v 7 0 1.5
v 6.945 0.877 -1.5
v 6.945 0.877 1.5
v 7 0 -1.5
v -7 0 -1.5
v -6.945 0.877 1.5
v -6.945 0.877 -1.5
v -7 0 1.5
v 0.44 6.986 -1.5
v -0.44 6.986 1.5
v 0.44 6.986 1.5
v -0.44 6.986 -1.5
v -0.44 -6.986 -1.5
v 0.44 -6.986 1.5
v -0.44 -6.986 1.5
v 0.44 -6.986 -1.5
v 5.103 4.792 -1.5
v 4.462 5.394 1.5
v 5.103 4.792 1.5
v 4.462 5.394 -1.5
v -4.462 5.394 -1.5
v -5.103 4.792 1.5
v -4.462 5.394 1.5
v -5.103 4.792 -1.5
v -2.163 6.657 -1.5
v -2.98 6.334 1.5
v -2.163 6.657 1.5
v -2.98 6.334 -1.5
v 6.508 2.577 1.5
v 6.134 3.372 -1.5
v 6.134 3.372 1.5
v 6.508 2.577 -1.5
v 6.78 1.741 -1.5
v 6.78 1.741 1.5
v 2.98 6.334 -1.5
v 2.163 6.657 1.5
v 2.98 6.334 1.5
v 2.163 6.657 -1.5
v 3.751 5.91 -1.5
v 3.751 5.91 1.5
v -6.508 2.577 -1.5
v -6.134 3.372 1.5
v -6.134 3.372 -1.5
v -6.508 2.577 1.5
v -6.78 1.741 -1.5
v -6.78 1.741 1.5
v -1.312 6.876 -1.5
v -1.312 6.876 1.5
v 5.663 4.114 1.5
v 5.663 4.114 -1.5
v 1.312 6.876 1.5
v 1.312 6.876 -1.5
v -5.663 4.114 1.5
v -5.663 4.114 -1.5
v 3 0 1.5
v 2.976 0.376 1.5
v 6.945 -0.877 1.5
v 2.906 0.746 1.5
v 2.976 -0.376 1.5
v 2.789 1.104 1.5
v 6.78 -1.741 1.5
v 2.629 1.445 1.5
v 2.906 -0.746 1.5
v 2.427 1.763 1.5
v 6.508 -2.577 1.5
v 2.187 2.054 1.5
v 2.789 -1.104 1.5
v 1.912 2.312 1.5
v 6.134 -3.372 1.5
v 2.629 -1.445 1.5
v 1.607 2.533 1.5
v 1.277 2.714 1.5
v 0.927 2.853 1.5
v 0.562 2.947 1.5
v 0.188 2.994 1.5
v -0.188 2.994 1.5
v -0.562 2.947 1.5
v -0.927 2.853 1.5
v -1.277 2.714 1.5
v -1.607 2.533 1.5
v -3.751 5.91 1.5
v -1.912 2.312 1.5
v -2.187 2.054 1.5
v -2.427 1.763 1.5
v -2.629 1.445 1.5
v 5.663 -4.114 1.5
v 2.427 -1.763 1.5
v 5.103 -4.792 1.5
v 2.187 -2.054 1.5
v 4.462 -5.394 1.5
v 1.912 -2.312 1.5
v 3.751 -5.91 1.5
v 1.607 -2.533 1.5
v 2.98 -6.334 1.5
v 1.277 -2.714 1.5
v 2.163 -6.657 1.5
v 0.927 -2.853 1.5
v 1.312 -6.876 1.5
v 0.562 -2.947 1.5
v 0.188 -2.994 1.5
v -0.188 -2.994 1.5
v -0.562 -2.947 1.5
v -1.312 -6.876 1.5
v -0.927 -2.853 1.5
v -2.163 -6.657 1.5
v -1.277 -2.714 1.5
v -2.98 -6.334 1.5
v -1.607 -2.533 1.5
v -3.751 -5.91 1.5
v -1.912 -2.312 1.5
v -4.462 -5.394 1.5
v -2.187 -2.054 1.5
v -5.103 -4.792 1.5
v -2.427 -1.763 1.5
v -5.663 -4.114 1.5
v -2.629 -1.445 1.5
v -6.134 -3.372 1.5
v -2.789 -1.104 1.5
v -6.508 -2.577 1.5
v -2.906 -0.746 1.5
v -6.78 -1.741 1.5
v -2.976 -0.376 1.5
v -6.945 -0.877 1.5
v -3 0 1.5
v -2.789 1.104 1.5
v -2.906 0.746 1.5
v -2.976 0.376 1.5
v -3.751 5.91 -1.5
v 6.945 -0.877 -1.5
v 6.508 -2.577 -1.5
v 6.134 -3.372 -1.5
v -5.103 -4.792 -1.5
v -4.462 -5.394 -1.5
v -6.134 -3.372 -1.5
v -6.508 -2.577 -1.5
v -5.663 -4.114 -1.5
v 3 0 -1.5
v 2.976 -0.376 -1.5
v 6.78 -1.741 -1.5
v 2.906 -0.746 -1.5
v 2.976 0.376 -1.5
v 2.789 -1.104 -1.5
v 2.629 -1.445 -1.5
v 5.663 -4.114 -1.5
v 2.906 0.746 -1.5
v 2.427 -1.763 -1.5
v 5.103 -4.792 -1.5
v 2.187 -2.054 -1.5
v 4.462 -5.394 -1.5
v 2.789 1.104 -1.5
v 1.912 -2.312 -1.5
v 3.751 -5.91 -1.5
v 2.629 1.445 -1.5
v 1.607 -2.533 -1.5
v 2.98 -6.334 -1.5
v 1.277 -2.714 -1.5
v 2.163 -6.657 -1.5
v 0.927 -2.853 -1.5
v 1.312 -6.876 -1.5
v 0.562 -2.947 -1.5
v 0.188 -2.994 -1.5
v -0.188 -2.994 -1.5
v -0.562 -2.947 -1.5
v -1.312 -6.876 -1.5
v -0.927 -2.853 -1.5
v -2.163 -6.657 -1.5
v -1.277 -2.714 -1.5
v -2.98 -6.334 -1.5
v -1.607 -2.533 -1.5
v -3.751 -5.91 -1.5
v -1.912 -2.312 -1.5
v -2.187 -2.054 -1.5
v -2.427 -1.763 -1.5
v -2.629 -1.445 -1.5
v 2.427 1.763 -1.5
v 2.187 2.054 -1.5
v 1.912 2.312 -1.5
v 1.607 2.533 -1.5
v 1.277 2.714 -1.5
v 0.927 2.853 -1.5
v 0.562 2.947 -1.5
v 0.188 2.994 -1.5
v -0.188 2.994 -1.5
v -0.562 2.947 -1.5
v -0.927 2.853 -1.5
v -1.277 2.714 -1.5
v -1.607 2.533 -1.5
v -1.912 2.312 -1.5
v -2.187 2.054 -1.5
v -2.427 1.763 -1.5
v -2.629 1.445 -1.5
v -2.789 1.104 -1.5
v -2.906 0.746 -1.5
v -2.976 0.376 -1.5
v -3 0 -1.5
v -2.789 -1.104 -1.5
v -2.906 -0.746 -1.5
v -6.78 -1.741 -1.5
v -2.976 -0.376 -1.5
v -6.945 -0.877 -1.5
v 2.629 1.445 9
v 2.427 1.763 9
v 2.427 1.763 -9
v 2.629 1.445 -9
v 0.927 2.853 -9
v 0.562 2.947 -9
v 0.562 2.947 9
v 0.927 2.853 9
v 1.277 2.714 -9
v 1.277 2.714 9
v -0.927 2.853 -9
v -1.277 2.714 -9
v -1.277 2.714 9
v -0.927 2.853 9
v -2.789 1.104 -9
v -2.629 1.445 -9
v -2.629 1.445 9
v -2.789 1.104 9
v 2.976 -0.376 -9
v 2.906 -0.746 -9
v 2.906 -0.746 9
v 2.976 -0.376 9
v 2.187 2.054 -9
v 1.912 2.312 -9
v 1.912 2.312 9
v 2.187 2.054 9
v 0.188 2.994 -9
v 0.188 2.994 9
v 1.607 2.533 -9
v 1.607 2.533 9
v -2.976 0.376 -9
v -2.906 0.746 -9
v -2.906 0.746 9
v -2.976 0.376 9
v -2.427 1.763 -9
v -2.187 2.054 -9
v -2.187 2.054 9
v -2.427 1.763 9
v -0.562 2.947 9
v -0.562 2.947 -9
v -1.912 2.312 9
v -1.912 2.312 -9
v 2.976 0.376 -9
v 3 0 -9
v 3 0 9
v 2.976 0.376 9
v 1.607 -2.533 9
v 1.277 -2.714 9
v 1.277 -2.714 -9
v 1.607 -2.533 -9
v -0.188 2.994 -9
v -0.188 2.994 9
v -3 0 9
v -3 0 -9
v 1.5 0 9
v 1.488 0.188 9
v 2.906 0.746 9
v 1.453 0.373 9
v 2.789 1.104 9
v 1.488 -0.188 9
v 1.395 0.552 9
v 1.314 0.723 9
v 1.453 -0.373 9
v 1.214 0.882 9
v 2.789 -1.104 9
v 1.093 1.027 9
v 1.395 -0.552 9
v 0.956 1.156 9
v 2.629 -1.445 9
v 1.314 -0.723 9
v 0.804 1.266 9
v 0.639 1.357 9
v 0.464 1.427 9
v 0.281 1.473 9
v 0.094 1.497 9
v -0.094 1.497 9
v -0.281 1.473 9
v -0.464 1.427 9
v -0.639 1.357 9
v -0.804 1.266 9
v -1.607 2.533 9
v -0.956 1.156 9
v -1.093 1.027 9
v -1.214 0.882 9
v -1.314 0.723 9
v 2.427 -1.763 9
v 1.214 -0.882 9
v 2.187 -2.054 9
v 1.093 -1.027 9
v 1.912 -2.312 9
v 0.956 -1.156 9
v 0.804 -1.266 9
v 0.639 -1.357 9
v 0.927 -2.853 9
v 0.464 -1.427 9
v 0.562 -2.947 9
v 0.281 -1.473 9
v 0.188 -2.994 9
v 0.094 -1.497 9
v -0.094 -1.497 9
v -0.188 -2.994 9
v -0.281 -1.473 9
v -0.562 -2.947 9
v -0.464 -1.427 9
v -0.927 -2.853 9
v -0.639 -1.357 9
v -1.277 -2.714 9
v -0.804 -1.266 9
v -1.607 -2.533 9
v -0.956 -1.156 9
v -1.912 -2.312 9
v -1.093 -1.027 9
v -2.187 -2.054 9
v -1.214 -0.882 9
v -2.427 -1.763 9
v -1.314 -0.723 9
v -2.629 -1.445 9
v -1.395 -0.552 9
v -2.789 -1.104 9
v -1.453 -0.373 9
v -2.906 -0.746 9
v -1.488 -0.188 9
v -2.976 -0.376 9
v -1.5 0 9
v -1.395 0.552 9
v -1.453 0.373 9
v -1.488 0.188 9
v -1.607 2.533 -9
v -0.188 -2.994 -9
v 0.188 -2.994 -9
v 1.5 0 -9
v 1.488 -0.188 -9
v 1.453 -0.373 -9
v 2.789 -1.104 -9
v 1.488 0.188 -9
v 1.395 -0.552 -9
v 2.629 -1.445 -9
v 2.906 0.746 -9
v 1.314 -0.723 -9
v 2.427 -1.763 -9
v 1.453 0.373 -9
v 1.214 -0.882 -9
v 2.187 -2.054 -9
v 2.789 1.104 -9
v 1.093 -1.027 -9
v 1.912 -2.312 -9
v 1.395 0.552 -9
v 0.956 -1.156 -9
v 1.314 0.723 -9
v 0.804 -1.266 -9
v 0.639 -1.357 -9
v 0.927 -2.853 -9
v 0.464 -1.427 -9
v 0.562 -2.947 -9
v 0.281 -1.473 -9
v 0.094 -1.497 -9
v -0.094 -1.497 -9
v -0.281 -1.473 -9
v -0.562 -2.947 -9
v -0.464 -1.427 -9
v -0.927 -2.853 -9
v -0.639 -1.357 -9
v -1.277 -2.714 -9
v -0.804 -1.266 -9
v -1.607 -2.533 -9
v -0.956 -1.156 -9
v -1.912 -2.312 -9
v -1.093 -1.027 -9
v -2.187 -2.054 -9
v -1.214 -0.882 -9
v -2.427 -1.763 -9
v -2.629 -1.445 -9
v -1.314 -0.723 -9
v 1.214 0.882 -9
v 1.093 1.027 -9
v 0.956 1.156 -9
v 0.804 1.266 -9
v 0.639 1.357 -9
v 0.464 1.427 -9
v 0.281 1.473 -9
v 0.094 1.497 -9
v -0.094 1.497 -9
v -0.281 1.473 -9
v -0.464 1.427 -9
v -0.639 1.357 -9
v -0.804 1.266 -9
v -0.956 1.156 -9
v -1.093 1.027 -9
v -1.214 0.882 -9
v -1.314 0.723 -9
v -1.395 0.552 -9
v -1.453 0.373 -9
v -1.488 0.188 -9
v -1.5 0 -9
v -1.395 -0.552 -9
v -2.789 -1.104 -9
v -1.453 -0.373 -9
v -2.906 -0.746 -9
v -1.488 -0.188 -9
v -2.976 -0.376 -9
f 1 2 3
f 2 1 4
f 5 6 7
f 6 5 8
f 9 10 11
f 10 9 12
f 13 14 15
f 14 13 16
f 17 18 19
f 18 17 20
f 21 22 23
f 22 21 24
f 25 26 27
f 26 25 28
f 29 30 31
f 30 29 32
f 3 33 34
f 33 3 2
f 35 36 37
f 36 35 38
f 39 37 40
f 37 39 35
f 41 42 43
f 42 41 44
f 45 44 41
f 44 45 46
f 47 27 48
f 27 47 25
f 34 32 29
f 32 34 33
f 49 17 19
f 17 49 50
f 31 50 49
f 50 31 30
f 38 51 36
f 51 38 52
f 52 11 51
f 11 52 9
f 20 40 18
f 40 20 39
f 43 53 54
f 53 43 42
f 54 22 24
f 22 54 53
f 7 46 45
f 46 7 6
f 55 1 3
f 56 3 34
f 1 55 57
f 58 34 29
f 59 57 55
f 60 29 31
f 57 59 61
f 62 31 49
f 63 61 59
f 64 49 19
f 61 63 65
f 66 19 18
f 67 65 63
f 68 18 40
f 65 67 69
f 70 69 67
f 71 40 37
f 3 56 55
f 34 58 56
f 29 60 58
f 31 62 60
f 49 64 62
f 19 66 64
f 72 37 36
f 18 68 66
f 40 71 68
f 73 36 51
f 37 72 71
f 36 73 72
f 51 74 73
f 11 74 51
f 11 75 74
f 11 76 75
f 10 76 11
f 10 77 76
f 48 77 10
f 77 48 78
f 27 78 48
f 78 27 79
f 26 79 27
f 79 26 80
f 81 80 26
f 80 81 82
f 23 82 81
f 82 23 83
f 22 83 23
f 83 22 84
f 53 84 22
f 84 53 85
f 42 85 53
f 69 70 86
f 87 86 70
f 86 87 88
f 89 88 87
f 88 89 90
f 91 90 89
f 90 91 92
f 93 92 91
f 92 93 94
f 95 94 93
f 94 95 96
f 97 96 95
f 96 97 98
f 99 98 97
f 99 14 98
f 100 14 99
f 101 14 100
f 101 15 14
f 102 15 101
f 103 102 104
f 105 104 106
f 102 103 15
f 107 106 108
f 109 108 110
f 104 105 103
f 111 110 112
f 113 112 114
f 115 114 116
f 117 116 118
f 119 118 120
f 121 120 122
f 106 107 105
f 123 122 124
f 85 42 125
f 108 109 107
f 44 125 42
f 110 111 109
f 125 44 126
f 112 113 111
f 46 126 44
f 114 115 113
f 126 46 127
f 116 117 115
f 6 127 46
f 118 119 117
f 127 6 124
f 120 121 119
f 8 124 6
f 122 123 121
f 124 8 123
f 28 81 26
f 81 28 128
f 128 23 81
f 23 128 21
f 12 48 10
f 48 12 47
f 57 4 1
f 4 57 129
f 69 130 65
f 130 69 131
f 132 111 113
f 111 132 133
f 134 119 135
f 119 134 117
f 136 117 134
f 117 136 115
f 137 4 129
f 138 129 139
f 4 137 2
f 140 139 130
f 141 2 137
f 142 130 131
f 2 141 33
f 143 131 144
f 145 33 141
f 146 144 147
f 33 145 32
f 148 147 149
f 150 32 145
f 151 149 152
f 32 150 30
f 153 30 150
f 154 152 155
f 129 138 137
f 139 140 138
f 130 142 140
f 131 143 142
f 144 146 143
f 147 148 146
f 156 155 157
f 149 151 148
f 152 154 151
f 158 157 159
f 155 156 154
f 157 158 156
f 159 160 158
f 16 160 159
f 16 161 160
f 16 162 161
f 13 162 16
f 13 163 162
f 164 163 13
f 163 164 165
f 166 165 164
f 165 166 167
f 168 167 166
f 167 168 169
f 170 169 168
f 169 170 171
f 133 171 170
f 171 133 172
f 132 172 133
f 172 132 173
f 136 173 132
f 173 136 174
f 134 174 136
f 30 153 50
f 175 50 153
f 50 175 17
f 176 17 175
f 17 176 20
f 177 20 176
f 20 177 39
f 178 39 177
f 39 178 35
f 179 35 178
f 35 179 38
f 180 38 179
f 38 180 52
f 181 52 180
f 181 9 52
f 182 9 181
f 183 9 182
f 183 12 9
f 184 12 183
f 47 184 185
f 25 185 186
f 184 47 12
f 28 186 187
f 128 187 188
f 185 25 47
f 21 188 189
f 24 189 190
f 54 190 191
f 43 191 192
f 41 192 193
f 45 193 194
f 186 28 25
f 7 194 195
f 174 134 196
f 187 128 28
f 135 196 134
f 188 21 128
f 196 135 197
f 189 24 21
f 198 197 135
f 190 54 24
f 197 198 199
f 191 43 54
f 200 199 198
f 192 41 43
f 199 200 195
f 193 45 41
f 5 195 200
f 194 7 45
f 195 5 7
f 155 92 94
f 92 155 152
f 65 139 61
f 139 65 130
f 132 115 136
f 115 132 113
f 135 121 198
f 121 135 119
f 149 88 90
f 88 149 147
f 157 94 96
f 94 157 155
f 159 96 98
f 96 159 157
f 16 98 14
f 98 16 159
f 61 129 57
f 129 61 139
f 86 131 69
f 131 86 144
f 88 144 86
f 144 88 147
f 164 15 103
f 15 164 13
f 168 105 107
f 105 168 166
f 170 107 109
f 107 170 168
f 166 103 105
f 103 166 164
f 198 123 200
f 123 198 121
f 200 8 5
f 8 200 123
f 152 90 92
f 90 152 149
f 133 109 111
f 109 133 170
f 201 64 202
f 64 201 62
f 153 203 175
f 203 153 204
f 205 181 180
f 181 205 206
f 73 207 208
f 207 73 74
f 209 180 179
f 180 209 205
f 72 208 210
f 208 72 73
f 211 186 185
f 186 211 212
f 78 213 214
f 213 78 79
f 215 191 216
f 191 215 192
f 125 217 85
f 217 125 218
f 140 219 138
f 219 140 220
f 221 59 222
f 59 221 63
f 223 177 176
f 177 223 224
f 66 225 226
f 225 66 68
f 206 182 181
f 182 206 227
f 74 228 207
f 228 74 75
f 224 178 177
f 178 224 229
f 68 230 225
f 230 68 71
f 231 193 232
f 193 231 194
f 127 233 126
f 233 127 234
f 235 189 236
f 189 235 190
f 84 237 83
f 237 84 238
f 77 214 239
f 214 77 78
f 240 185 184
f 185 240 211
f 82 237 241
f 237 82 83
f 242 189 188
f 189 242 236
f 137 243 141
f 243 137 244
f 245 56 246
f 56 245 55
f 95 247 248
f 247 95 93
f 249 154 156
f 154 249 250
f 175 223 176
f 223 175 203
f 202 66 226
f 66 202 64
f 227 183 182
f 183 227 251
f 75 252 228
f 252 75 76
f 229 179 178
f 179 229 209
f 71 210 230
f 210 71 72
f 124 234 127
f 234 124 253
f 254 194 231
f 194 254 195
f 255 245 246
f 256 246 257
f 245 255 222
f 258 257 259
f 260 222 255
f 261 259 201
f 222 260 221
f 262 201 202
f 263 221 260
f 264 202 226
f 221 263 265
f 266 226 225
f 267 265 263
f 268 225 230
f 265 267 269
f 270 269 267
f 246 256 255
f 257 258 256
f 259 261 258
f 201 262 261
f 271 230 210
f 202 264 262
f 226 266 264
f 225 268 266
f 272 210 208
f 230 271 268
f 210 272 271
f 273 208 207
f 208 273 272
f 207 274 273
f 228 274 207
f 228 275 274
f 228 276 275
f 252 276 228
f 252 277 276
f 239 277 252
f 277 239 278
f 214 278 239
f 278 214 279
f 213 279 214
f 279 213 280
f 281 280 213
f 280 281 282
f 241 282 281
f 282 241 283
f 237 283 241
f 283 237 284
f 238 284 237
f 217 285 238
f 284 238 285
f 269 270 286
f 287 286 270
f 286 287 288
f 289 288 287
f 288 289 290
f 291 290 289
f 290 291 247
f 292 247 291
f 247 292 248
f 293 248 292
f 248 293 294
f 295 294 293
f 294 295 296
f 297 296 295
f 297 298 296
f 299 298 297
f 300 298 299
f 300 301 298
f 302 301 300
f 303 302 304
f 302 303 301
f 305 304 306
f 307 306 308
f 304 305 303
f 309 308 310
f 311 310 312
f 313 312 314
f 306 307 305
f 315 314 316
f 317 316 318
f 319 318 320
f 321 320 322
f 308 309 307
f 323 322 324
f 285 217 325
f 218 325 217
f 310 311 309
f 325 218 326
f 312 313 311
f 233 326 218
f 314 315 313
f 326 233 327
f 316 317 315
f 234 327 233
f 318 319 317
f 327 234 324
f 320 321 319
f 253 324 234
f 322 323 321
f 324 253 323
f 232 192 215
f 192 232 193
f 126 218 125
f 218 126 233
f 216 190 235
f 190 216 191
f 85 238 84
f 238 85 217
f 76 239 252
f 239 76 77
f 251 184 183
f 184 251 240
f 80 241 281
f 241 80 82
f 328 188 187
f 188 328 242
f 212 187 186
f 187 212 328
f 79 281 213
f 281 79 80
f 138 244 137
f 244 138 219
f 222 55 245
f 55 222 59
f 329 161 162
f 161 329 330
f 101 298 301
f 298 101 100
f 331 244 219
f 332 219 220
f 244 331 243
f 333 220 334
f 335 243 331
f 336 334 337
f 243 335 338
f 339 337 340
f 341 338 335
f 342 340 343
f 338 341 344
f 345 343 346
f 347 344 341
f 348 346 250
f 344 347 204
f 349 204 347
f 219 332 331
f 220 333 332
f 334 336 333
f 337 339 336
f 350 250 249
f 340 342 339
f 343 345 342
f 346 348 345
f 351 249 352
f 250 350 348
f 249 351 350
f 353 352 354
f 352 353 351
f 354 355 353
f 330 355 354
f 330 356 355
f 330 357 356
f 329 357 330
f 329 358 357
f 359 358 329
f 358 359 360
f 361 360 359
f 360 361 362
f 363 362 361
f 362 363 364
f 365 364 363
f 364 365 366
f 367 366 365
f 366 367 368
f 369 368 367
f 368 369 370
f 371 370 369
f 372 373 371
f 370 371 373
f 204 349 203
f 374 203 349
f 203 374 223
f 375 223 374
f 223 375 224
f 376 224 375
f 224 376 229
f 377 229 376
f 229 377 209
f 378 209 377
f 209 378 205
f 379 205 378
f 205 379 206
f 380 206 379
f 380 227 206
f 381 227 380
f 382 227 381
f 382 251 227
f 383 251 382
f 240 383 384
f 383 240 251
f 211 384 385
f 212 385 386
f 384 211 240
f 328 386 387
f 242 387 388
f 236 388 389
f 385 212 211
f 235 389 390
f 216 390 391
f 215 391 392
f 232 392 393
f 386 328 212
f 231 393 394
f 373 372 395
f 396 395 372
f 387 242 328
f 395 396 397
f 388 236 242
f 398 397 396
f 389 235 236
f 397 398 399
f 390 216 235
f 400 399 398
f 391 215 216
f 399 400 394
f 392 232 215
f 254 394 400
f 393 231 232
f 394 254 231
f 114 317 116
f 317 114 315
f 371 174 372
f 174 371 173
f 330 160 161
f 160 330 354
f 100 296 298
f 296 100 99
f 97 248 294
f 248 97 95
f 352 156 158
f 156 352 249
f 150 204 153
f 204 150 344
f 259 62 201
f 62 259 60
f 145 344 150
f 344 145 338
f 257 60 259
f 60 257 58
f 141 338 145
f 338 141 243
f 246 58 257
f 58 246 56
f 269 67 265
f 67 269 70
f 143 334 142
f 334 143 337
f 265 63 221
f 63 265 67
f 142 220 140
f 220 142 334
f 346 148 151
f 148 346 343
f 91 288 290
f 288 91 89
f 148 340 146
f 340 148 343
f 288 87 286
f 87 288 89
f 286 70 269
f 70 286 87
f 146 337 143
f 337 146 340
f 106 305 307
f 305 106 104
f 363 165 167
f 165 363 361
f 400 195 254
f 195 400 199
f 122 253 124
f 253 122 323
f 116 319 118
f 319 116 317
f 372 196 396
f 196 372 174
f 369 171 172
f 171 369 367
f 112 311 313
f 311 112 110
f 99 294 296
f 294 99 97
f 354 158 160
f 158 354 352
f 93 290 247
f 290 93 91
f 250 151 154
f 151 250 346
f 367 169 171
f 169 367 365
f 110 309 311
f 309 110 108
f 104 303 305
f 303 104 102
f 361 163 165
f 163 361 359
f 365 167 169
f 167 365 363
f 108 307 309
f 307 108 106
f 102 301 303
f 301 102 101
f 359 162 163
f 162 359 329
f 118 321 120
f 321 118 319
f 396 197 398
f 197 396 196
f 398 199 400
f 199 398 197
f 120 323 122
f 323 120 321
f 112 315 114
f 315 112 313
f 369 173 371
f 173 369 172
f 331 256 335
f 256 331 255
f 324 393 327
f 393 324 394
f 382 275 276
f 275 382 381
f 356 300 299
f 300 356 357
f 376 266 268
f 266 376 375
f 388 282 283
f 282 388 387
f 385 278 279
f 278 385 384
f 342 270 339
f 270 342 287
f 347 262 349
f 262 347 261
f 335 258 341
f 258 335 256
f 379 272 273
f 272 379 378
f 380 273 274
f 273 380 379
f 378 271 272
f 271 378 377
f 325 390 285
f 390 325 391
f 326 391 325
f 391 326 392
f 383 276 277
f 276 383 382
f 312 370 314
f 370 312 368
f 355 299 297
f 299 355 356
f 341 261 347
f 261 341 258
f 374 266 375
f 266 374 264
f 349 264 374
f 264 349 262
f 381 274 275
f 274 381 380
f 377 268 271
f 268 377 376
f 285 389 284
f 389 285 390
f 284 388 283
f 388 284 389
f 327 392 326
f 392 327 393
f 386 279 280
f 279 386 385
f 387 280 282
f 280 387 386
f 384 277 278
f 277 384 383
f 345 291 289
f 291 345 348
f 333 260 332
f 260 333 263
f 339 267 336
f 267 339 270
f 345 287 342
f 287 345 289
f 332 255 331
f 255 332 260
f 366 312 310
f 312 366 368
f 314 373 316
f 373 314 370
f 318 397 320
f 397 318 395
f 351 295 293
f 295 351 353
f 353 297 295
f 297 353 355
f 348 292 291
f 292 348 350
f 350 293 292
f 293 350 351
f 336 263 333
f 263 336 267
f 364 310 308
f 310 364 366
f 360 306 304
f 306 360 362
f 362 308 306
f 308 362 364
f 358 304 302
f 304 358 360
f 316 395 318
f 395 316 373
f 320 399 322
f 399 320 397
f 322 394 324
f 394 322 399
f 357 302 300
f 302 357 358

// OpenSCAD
$fn = 50;


difference() {
	union() {
		translate(v = [0, 0, -1.5000000000]) {
			rotate(a = [0, 0, 0]) {
				cylinder(h = 3, r = 7.0000000000);
			}
		}
		translate(v = [0, 0, -9.0000000000]) {
			rotate(a = [0, 0, 0]) {
				cylinder(h = 18, r = 3.0000000000);
			}
		}
	}
	union() {
		translate(v = [0, 0, -125.0000000000]) {
			rotate(a = [0, 0, 0]) {
				cylinder(h = 250, r = 1.5000000000);
			}
		}
	}
}
